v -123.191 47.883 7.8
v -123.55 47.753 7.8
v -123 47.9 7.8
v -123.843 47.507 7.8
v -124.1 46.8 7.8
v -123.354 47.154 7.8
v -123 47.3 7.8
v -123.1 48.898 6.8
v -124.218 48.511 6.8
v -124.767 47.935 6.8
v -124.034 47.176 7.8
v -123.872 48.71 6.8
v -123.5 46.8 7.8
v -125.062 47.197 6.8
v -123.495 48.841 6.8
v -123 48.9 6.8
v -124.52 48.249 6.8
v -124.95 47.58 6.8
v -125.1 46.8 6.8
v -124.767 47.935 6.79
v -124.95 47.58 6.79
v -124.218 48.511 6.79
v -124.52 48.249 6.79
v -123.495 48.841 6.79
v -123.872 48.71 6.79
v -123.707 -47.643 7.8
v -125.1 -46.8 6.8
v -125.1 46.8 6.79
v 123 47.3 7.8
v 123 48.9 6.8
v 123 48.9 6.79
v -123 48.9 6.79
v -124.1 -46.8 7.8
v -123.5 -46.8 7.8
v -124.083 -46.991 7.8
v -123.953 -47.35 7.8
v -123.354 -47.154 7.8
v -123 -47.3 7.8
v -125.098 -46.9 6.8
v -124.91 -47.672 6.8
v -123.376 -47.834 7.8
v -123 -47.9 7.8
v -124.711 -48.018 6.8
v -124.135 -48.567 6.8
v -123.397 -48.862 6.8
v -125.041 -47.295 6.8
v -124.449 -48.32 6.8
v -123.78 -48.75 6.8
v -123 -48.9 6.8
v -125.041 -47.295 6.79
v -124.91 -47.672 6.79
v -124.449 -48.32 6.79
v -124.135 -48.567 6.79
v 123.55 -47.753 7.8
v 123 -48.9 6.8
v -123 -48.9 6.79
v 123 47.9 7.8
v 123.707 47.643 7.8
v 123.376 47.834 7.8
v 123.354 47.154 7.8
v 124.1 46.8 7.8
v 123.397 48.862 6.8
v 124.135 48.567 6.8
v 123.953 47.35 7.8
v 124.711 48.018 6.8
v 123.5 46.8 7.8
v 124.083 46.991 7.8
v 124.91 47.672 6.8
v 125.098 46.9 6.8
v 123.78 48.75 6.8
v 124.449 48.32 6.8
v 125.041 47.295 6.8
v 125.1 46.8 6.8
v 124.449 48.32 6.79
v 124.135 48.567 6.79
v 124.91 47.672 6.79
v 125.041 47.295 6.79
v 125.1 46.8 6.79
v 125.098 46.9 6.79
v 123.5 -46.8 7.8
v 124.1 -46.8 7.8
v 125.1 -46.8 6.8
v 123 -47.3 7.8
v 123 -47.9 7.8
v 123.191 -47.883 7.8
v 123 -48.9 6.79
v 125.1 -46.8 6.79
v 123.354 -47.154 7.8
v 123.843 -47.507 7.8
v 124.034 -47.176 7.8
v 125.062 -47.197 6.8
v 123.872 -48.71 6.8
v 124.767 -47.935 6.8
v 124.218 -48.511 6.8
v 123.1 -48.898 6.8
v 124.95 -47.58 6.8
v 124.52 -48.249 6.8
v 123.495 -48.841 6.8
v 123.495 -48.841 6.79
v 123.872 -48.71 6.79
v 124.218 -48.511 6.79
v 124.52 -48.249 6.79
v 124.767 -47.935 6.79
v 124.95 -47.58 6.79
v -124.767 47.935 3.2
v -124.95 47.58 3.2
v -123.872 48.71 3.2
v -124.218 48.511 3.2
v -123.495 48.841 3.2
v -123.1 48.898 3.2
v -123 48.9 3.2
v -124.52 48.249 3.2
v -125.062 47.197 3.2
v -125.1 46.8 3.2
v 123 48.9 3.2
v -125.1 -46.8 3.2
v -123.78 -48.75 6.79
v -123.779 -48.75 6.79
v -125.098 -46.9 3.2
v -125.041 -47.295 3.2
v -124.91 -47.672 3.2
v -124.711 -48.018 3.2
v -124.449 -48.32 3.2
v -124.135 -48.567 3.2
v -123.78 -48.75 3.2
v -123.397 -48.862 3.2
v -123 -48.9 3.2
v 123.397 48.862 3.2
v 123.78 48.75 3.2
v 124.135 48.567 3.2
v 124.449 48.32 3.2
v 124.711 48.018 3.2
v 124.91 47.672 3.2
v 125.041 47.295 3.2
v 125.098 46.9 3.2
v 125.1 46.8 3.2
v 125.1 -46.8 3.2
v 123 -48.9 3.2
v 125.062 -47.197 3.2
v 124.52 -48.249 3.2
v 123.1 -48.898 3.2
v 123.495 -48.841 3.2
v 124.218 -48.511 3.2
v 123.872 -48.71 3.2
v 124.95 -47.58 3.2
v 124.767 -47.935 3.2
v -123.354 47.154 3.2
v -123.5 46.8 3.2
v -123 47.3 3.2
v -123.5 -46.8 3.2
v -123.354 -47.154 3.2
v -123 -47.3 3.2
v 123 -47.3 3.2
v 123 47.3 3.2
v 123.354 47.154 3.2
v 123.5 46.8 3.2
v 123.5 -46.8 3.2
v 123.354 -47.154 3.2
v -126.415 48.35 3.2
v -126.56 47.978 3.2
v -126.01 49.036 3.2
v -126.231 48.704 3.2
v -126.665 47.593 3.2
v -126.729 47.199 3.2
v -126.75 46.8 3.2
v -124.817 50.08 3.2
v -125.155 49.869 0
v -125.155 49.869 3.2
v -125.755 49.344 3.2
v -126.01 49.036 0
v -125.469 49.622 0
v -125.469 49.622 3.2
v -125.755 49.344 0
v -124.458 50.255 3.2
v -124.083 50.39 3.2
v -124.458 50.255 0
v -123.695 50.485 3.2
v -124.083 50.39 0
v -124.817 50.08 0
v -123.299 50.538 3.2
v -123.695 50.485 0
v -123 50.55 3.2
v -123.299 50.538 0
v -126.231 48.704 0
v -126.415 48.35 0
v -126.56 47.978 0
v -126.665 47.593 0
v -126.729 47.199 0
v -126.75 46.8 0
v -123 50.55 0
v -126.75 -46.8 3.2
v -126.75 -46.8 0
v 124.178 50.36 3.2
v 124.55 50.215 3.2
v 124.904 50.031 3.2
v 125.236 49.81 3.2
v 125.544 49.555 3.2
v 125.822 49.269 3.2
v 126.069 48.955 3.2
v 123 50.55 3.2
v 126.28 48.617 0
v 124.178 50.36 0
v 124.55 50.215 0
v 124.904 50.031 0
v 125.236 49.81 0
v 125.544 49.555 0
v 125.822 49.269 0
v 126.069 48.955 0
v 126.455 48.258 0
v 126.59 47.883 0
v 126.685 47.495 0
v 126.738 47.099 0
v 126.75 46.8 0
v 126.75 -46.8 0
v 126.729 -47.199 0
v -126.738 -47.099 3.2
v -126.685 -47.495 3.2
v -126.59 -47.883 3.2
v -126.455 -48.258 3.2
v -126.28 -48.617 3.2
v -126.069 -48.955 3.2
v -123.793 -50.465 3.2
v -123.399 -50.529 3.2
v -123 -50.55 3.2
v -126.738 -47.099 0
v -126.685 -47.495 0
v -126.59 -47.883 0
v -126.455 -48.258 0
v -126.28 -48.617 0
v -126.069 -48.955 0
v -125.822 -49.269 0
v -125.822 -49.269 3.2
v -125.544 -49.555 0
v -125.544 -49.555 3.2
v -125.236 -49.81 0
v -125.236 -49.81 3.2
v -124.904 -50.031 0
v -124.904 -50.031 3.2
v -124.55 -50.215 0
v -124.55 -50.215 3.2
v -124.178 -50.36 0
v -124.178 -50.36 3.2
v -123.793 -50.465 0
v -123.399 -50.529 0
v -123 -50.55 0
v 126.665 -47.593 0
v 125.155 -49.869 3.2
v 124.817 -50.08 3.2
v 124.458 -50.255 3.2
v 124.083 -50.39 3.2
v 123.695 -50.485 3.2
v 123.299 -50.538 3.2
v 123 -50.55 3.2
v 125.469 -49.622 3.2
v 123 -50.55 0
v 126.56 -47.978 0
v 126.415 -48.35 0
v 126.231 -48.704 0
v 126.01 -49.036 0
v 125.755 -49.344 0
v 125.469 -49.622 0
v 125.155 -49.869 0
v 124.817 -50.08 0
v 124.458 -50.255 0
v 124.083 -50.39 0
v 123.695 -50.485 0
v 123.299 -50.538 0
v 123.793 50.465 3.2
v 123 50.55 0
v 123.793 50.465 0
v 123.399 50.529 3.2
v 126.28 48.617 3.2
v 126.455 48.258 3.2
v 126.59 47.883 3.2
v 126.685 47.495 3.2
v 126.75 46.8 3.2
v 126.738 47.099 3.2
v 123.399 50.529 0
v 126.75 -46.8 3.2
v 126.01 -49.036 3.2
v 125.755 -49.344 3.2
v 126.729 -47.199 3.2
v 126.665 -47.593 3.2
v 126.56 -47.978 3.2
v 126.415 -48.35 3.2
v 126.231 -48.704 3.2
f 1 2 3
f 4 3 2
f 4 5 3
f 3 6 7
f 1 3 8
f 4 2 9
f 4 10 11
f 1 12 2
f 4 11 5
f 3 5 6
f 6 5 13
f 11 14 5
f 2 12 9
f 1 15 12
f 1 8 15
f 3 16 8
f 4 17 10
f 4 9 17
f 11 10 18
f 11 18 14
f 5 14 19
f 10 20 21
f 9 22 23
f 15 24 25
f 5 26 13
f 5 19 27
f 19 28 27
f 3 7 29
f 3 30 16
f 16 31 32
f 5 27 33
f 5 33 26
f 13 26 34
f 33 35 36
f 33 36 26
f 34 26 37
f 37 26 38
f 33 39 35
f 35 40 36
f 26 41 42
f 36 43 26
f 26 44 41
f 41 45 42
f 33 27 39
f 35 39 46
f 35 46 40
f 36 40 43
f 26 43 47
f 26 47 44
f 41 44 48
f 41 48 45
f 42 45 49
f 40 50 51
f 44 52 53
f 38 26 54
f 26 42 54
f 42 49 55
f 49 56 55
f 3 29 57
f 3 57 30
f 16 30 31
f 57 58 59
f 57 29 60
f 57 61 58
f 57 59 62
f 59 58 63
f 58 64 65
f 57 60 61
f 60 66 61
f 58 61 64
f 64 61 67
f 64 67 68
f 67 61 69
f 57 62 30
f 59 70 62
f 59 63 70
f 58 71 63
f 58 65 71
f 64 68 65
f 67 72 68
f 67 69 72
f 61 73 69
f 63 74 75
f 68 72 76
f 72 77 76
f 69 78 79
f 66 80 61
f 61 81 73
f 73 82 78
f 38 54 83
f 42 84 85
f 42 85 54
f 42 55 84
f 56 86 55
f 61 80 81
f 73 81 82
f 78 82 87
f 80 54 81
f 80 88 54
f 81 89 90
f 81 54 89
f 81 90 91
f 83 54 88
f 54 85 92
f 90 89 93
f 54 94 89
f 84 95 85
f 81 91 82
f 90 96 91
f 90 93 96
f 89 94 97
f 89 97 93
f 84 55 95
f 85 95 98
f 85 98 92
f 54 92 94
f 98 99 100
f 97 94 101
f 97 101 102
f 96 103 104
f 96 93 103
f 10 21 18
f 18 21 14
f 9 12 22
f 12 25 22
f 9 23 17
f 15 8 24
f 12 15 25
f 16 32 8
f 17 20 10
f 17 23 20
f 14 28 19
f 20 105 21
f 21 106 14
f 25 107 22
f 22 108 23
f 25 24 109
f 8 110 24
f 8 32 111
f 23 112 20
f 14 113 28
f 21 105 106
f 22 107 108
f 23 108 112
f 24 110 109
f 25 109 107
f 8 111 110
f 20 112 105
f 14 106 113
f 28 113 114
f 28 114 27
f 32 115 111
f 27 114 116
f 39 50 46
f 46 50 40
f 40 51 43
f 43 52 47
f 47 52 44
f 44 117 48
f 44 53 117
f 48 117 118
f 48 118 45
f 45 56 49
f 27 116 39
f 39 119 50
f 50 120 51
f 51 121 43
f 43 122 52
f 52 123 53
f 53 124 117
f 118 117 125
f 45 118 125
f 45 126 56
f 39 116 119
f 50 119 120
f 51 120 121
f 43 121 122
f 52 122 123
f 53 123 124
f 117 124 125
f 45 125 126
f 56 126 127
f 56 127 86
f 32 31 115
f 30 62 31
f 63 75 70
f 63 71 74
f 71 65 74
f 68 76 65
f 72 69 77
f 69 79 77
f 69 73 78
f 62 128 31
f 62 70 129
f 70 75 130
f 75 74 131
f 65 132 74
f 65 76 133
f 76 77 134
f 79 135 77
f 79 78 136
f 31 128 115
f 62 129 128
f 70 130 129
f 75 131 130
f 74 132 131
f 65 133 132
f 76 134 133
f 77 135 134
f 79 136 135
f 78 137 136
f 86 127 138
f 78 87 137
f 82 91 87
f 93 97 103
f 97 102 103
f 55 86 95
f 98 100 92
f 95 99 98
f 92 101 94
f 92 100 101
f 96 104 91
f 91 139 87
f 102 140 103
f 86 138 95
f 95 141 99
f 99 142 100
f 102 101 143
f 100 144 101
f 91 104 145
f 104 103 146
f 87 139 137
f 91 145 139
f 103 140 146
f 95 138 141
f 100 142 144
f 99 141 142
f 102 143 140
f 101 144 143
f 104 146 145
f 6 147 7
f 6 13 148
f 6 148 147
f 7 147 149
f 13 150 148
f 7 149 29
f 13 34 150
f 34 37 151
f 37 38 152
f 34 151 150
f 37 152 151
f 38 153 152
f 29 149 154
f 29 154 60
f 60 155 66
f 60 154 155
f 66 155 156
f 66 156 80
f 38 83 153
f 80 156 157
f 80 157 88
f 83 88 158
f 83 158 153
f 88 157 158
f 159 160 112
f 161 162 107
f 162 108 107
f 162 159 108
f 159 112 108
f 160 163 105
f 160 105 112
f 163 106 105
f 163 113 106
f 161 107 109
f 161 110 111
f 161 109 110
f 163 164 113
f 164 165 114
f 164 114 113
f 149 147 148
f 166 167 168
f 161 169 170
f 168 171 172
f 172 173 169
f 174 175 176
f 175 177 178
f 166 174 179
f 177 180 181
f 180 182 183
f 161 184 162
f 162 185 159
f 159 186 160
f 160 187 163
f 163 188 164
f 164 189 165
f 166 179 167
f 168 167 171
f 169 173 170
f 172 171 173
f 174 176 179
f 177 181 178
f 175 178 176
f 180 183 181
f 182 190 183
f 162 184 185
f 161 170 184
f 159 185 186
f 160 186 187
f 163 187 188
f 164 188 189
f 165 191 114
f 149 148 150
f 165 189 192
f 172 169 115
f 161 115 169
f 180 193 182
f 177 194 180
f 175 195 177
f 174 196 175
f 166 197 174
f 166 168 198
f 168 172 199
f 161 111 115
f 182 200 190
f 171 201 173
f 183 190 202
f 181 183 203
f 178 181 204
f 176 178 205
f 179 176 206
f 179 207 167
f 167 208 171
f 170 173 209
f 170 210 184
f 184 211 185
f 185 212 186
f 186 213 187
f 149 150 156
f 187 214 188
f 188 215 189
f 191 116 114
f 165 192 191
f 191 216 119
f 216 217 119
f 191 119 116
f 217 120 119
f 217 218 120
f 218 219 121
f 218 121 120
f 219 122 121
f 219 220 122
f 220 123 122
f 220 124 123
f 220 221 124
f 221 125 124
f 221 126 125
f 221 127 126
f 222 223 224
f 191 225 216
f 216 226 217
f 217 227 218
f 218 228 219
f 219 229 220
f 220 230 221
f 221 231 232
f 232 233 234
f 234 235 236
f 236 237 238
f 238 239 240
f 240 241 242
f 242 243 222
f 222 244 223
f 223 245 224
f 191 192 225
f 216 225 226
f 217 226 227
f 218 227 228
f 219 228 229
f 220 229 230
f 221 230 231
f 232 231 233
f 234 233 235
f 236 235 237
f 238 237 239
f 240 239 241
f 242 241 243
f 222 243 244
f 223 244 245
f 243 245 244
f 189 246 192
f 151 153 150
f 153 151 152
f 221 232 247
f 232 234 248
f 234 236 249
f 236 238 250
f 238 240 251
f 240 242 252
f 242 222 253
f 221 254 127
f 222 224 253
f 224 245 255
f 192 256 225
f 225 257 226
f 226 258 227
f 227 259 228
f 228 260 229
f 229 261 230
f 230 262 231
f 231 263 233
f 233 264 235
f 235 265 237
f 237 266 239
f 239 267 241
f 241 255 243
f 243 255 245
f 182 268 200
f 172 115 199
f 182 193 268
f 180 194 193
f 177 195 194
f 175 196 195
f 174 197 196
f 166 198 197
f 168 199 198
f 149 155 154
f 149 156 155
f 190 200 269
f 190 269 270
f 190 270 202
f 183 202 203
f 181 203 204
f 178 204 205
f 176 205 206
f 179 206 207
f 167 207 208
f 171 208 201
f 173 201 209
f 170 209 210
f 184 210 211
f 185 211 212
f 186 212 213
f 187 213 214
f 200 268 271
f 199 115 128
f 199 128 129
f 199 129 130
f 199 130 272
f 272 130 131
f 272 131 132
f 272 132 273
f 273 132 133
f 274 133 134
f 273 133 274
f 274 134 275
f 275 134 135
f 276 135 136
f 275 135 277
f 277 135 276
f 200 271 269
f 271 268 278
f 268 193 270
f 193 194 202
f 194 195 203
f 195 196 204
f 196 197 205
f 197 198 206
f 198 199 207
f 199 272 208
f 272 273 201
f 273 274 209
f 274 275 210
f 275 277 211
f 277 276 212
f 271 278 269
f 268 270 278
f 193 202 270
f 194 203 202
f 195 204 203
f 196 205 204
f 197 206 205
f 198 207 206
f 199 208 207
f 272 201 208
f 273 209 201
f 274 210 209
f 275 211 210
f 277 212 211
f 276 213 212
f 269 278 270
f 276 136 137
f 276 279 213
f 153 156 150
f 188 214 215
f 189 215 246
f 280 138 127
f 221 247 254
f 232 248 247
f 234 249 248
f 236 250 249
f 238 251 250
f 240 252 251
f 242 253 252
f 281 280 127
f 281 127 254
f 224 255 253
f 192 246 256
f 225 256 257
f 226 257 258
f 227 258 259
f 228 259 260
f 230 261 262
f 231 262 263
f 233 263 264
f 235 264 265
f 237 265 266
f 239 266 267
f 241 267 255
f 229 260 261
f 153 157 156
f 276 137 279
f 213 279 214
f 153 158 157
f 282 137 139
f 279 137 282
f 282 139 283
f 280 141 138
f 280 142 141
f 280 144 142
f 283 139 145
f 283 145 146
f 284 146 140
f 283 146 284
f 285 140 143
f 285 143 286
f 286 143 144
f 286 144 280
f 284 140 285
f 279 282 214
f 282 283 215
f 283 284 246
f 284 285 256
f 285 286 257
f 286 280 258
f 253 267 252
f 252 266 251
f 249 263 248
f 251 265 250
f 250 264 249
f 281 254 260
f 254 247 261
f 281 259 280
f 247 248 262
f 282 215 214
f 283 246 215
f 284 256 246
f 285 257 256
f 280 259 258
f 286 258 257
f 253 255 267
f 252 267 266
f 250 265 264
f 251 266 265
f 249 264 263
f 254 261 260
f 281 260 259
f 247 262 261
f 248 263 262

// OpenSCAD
// file: photo_box_002.scad
// photo_box — shipping box for photos, with a proud inset lid
//
// Two parts, single-colour PLA, both print without supports.
//   box  prints open-face-up, floor on the bed
//   lid  prints top-face-down, skirt pointing up
//
// The four numbers below are the ones to change. Everything else is
// derived, so the model stays coherent at any size.

// ---- outside envelope (lid on) ----------------------------------------
// HARD CONSTRAINT. No feature on either part may exceed these in any
// axis. Grips and the like are cut *into* the envelope, never added
// outside it. Checked against the exported meshes — see SPEC.md §9.
box_w = 254;      // 10"    width
box_d = 101.6;    // 4"     depth
box_h = 158.75;   // 6.25"  height, lid seated

// ---- thicknesses ------------------------------------------------------
wall_t  = 2.0;    // side walls        (5 perimeters @ 0.4)
floor_t = 2.4;    // box floor         (6 perimeters)
lid_t   = 3.2;    // lid plate         (8 perimeters)

// ---- lid interface ----------------------------------------------------
rabbet_h = 5.0;   // how far the ledge sits below the rim
ledge_w  = 2.0;   // horizontal width of the ledge
rim_t    = 1.6;   // standing rim above the ledge (4 perimeters)
ramp_h   = 2.4;   // ramp thickening the wall into the rabbet zone. Rises 2.4
                  // while growing 1.6 inward — 34 deg off vertical, so it sits
                  // clear of the 45 deg self-support limit rather than on it.
skirt_w  = 1.6;   // lid skirt thickness (4 perimeters)
clr      = 0.3;   // lateral clearance, skirt to rim (PLA)
seat_gap = 0.4;   // skirt clears the ledge — the rim is the seat, not the ledge

// ---- cosmetic / ergonomic --------------------------------------------
corner_r   = 4.0;  // outside corner radius
lid_relief = 0.25; // lid plate inset from the outer face, per side
skirt_cham = 1.0;  // 45 deg lead-in so the lid self-centres on the way in
foot_cham  = 0.6;  // bottom outer edge — chamfer, not a round (elephant's foot)

// Nail catch: a notch taken out of the BOX rim, front and back, leaving the
// lid edge overhanging a gap you put a fingernail into. Subtractive, so the
// grip costs no envelope.
//
// It is cut from the rim rather than the lid's underside because the plate
// only overhangs the skirt by 1.65 (lid_od/2 - skirt_od/2). Chamfering the
// lid deeper than that removes the plate from under the skirt and leaves the
// skirt bridging nail_w in mid-air. The rim has depth to give; the lid
// does not.
nail_d = 3.0;      // notch depth below the rim top
nail_w = 60.0;     // span along the edge, centred

// ---- output -----------------------------------------------------------
part = "both";     // "box" | "lid" | "both"

$fa = 2;
$fs = 0.4;

// ---- derived ----------------------------------------------------------
body_h   = box_h - lid_t;        // rim top: the lid plate sits on this
ledge_z  = body_h - rabbet_h;    // up-facing ledge surface
ramp_z   = ledge_z - ramp_h;     // where the wall starts thickening
top_wall = rim_t + ledge_w;      // wall thickness through the rabbet zone
skirt_h  = rabbet_h - seat_gap;  // skirt stops short of the ledge

// Rounded-rectangle prism, centred in x/y, rising from z = 0.
module rrect_prism(w, d, r, h) {
    rr = max(min(r, w / 2 - 0.01, d / 2 - 0.01), 0.01);
    linear_extrude(height = h)
        offset(r = rr)
            square([w - 2 * rr, d - 2 * rr], center = true);
}

// ---- box --------------------------------------------------------------

module box_outer() {
    // Chamfered foot, then a straight prism the rest of the way up.
    hull() {
        rrect_prism(box_w - 2 * foot_cham, box_d - 2 * foot_cham,
                    corner_r - foot_cham, 0.01);
        translate([0, 0, foot_cham]) rrect_prism(box_w, box_d, corner_r, 0.01);
    }
    translate([0, 0, foot_cham])
        rrect_prism(box_w, box_d, corner_r, body_h - foot_cham);
}

// The cavity is cut in three stacked pieces. Each one is *wider* than the
// piece below it or tapers into it, so every newly exposed surface faces up
// or sits at 45 deg — nothing to support.
module box_cavity() {
    // Main volume, floor up to the ramp.
    translate([0, 0, floor_t])
        rrect_prism(box_w - 2 * wall_t, box_d - 2 * wall_t,
                    corner_r - wall_t, ramp_z - floor_t + 0.01);

    // 45 deg ramp: the wall thickens inward from wall_t to top_wall, giving
    // the rabbet something solid to be cut out of and hooping the top of a
    // large thin-walled box.
    hull() {
        translate([0, 0, ramp_z])
            rrect_prism(box_w - 2 * wall_t, box_d - 2 * wall_t,
                        corner_r - wall_t, 0.01);
        translate([0, 0, ledge_z - 0.01])
            rrect_prism(box_w - 2 * top_wall, box_d - 2 * top_wall,
                        corner_r - top_wall, 0.01);
    }

    // Rabbet: a wider cut above the ledge leaves the ledge as an up-facing
    // shelf and the rim as a standing fin.
    translate([0, 0, ledge_z])
        rrect_prism(box_w - 2 * rim_t, box_d - 2 * rim_t,
                    corner_r - rim_t, rabbet_h + 1);
}

// Notch through the rim, front and back. Its floor faces up and its walls are
// vertical, so it costs the upright box print nothing. Inboard of the rim is
// already rabbet void, so the cut reaches past it harmlessly.
module nail_catch_cut() {
    for (s = [1, -1])
        translate([0, s * (box_d / 2 - 3), body_h - nail_d / 2 + 1])
            cube([nail_w, 10, nail_d + 2], center = true);
}

module box() {
    difference() {
        box_outer();
        box_cavity();
        nail_catch_cut();
    }
}

// ---- lid --------------------------------------------------------------
// Modelled in the assembled orientation: plate on top, skirt hanging down
// into the rabbet. Flipped for printing at the bottom of the file.

skirt_ow = box_w - 2 * rim_t - 2 * clr;
skirt_od = box_d - 2 * rim_t - 2 * clr;
skirt_or = corner_r - rim_t - clr;
skirt_z0 = body_h - skirt_h;

lid_ow = box_w - 2 * lid_relief;
lid_od = box_d - 2 * lid_relief;

module lid() {
    // Plain plate. The grip lives in the box rim, so nothing is cut from
    // here and the skirt keeps full plate under it.
    translate([0, 0, body_h])
        rrect_prism(lid_ow, lid_od, corner_r - lid_relief, lid_t);

    // Skirt: lateral register only. Its outer face runs against the rim's
    // inner face; a 45 deg lead-in lets it find the opening on the way down.
    difference() {
        union() {
            hull() {
                translate([0, 0, skirt_z0])
                    rrect_prism(skirt_ow - 2 * skirt_cham,
                                skirt_od - 2 * skirt_cham,
                                skirt_or - skirt_cham, 0.01);
                translate([0, 0, skirt_z0 + skirt_cham])
                    rrect_prism(skirt_ow, skirt_od, skirt_or, 0.01);
            }
            translate([0, 0, skirt_z0 + skirt_cham])
                rrect_prism(skirt_ow, skirt_od, skirt_or,
                            skirt_h - skirt_cham + 0.01);
        }
        translate([0, 0, skirt_z0 - 1])
            rrect_prism(skirt_ow - 2 * skirt_w, skirt_od - 2 * skirt_w,
                        skirt_or - skirt_w, skirt_h + 2);
    }
}

// Lid rotated onto its print orientation: visible face down on the bed.
module lid_printed() {
    translate([0, 0, box_h]) rotate([180, 0, 0]) lid();
}

// ---- output -----------------------------------------------------------

if (part == "box") {
    box();
} else if (part == "lid") {
    lid_printed();
} else if (part == "both") {
    // Exploded preview — lid lifted clear so the rabbet is visible.
    box();
    translate([0, 0, 40]) lid();
}
// Any other value emits nothing, so this file can be included and
// section-cut for debugging without drawing the whole model.
// main file
// Lid-only print layout (visible face down on the bed, skirt up, support-free).
// The trailing assignment overrides part="both" from the include.
include <photo_box_002.scad>
part = "lid";
